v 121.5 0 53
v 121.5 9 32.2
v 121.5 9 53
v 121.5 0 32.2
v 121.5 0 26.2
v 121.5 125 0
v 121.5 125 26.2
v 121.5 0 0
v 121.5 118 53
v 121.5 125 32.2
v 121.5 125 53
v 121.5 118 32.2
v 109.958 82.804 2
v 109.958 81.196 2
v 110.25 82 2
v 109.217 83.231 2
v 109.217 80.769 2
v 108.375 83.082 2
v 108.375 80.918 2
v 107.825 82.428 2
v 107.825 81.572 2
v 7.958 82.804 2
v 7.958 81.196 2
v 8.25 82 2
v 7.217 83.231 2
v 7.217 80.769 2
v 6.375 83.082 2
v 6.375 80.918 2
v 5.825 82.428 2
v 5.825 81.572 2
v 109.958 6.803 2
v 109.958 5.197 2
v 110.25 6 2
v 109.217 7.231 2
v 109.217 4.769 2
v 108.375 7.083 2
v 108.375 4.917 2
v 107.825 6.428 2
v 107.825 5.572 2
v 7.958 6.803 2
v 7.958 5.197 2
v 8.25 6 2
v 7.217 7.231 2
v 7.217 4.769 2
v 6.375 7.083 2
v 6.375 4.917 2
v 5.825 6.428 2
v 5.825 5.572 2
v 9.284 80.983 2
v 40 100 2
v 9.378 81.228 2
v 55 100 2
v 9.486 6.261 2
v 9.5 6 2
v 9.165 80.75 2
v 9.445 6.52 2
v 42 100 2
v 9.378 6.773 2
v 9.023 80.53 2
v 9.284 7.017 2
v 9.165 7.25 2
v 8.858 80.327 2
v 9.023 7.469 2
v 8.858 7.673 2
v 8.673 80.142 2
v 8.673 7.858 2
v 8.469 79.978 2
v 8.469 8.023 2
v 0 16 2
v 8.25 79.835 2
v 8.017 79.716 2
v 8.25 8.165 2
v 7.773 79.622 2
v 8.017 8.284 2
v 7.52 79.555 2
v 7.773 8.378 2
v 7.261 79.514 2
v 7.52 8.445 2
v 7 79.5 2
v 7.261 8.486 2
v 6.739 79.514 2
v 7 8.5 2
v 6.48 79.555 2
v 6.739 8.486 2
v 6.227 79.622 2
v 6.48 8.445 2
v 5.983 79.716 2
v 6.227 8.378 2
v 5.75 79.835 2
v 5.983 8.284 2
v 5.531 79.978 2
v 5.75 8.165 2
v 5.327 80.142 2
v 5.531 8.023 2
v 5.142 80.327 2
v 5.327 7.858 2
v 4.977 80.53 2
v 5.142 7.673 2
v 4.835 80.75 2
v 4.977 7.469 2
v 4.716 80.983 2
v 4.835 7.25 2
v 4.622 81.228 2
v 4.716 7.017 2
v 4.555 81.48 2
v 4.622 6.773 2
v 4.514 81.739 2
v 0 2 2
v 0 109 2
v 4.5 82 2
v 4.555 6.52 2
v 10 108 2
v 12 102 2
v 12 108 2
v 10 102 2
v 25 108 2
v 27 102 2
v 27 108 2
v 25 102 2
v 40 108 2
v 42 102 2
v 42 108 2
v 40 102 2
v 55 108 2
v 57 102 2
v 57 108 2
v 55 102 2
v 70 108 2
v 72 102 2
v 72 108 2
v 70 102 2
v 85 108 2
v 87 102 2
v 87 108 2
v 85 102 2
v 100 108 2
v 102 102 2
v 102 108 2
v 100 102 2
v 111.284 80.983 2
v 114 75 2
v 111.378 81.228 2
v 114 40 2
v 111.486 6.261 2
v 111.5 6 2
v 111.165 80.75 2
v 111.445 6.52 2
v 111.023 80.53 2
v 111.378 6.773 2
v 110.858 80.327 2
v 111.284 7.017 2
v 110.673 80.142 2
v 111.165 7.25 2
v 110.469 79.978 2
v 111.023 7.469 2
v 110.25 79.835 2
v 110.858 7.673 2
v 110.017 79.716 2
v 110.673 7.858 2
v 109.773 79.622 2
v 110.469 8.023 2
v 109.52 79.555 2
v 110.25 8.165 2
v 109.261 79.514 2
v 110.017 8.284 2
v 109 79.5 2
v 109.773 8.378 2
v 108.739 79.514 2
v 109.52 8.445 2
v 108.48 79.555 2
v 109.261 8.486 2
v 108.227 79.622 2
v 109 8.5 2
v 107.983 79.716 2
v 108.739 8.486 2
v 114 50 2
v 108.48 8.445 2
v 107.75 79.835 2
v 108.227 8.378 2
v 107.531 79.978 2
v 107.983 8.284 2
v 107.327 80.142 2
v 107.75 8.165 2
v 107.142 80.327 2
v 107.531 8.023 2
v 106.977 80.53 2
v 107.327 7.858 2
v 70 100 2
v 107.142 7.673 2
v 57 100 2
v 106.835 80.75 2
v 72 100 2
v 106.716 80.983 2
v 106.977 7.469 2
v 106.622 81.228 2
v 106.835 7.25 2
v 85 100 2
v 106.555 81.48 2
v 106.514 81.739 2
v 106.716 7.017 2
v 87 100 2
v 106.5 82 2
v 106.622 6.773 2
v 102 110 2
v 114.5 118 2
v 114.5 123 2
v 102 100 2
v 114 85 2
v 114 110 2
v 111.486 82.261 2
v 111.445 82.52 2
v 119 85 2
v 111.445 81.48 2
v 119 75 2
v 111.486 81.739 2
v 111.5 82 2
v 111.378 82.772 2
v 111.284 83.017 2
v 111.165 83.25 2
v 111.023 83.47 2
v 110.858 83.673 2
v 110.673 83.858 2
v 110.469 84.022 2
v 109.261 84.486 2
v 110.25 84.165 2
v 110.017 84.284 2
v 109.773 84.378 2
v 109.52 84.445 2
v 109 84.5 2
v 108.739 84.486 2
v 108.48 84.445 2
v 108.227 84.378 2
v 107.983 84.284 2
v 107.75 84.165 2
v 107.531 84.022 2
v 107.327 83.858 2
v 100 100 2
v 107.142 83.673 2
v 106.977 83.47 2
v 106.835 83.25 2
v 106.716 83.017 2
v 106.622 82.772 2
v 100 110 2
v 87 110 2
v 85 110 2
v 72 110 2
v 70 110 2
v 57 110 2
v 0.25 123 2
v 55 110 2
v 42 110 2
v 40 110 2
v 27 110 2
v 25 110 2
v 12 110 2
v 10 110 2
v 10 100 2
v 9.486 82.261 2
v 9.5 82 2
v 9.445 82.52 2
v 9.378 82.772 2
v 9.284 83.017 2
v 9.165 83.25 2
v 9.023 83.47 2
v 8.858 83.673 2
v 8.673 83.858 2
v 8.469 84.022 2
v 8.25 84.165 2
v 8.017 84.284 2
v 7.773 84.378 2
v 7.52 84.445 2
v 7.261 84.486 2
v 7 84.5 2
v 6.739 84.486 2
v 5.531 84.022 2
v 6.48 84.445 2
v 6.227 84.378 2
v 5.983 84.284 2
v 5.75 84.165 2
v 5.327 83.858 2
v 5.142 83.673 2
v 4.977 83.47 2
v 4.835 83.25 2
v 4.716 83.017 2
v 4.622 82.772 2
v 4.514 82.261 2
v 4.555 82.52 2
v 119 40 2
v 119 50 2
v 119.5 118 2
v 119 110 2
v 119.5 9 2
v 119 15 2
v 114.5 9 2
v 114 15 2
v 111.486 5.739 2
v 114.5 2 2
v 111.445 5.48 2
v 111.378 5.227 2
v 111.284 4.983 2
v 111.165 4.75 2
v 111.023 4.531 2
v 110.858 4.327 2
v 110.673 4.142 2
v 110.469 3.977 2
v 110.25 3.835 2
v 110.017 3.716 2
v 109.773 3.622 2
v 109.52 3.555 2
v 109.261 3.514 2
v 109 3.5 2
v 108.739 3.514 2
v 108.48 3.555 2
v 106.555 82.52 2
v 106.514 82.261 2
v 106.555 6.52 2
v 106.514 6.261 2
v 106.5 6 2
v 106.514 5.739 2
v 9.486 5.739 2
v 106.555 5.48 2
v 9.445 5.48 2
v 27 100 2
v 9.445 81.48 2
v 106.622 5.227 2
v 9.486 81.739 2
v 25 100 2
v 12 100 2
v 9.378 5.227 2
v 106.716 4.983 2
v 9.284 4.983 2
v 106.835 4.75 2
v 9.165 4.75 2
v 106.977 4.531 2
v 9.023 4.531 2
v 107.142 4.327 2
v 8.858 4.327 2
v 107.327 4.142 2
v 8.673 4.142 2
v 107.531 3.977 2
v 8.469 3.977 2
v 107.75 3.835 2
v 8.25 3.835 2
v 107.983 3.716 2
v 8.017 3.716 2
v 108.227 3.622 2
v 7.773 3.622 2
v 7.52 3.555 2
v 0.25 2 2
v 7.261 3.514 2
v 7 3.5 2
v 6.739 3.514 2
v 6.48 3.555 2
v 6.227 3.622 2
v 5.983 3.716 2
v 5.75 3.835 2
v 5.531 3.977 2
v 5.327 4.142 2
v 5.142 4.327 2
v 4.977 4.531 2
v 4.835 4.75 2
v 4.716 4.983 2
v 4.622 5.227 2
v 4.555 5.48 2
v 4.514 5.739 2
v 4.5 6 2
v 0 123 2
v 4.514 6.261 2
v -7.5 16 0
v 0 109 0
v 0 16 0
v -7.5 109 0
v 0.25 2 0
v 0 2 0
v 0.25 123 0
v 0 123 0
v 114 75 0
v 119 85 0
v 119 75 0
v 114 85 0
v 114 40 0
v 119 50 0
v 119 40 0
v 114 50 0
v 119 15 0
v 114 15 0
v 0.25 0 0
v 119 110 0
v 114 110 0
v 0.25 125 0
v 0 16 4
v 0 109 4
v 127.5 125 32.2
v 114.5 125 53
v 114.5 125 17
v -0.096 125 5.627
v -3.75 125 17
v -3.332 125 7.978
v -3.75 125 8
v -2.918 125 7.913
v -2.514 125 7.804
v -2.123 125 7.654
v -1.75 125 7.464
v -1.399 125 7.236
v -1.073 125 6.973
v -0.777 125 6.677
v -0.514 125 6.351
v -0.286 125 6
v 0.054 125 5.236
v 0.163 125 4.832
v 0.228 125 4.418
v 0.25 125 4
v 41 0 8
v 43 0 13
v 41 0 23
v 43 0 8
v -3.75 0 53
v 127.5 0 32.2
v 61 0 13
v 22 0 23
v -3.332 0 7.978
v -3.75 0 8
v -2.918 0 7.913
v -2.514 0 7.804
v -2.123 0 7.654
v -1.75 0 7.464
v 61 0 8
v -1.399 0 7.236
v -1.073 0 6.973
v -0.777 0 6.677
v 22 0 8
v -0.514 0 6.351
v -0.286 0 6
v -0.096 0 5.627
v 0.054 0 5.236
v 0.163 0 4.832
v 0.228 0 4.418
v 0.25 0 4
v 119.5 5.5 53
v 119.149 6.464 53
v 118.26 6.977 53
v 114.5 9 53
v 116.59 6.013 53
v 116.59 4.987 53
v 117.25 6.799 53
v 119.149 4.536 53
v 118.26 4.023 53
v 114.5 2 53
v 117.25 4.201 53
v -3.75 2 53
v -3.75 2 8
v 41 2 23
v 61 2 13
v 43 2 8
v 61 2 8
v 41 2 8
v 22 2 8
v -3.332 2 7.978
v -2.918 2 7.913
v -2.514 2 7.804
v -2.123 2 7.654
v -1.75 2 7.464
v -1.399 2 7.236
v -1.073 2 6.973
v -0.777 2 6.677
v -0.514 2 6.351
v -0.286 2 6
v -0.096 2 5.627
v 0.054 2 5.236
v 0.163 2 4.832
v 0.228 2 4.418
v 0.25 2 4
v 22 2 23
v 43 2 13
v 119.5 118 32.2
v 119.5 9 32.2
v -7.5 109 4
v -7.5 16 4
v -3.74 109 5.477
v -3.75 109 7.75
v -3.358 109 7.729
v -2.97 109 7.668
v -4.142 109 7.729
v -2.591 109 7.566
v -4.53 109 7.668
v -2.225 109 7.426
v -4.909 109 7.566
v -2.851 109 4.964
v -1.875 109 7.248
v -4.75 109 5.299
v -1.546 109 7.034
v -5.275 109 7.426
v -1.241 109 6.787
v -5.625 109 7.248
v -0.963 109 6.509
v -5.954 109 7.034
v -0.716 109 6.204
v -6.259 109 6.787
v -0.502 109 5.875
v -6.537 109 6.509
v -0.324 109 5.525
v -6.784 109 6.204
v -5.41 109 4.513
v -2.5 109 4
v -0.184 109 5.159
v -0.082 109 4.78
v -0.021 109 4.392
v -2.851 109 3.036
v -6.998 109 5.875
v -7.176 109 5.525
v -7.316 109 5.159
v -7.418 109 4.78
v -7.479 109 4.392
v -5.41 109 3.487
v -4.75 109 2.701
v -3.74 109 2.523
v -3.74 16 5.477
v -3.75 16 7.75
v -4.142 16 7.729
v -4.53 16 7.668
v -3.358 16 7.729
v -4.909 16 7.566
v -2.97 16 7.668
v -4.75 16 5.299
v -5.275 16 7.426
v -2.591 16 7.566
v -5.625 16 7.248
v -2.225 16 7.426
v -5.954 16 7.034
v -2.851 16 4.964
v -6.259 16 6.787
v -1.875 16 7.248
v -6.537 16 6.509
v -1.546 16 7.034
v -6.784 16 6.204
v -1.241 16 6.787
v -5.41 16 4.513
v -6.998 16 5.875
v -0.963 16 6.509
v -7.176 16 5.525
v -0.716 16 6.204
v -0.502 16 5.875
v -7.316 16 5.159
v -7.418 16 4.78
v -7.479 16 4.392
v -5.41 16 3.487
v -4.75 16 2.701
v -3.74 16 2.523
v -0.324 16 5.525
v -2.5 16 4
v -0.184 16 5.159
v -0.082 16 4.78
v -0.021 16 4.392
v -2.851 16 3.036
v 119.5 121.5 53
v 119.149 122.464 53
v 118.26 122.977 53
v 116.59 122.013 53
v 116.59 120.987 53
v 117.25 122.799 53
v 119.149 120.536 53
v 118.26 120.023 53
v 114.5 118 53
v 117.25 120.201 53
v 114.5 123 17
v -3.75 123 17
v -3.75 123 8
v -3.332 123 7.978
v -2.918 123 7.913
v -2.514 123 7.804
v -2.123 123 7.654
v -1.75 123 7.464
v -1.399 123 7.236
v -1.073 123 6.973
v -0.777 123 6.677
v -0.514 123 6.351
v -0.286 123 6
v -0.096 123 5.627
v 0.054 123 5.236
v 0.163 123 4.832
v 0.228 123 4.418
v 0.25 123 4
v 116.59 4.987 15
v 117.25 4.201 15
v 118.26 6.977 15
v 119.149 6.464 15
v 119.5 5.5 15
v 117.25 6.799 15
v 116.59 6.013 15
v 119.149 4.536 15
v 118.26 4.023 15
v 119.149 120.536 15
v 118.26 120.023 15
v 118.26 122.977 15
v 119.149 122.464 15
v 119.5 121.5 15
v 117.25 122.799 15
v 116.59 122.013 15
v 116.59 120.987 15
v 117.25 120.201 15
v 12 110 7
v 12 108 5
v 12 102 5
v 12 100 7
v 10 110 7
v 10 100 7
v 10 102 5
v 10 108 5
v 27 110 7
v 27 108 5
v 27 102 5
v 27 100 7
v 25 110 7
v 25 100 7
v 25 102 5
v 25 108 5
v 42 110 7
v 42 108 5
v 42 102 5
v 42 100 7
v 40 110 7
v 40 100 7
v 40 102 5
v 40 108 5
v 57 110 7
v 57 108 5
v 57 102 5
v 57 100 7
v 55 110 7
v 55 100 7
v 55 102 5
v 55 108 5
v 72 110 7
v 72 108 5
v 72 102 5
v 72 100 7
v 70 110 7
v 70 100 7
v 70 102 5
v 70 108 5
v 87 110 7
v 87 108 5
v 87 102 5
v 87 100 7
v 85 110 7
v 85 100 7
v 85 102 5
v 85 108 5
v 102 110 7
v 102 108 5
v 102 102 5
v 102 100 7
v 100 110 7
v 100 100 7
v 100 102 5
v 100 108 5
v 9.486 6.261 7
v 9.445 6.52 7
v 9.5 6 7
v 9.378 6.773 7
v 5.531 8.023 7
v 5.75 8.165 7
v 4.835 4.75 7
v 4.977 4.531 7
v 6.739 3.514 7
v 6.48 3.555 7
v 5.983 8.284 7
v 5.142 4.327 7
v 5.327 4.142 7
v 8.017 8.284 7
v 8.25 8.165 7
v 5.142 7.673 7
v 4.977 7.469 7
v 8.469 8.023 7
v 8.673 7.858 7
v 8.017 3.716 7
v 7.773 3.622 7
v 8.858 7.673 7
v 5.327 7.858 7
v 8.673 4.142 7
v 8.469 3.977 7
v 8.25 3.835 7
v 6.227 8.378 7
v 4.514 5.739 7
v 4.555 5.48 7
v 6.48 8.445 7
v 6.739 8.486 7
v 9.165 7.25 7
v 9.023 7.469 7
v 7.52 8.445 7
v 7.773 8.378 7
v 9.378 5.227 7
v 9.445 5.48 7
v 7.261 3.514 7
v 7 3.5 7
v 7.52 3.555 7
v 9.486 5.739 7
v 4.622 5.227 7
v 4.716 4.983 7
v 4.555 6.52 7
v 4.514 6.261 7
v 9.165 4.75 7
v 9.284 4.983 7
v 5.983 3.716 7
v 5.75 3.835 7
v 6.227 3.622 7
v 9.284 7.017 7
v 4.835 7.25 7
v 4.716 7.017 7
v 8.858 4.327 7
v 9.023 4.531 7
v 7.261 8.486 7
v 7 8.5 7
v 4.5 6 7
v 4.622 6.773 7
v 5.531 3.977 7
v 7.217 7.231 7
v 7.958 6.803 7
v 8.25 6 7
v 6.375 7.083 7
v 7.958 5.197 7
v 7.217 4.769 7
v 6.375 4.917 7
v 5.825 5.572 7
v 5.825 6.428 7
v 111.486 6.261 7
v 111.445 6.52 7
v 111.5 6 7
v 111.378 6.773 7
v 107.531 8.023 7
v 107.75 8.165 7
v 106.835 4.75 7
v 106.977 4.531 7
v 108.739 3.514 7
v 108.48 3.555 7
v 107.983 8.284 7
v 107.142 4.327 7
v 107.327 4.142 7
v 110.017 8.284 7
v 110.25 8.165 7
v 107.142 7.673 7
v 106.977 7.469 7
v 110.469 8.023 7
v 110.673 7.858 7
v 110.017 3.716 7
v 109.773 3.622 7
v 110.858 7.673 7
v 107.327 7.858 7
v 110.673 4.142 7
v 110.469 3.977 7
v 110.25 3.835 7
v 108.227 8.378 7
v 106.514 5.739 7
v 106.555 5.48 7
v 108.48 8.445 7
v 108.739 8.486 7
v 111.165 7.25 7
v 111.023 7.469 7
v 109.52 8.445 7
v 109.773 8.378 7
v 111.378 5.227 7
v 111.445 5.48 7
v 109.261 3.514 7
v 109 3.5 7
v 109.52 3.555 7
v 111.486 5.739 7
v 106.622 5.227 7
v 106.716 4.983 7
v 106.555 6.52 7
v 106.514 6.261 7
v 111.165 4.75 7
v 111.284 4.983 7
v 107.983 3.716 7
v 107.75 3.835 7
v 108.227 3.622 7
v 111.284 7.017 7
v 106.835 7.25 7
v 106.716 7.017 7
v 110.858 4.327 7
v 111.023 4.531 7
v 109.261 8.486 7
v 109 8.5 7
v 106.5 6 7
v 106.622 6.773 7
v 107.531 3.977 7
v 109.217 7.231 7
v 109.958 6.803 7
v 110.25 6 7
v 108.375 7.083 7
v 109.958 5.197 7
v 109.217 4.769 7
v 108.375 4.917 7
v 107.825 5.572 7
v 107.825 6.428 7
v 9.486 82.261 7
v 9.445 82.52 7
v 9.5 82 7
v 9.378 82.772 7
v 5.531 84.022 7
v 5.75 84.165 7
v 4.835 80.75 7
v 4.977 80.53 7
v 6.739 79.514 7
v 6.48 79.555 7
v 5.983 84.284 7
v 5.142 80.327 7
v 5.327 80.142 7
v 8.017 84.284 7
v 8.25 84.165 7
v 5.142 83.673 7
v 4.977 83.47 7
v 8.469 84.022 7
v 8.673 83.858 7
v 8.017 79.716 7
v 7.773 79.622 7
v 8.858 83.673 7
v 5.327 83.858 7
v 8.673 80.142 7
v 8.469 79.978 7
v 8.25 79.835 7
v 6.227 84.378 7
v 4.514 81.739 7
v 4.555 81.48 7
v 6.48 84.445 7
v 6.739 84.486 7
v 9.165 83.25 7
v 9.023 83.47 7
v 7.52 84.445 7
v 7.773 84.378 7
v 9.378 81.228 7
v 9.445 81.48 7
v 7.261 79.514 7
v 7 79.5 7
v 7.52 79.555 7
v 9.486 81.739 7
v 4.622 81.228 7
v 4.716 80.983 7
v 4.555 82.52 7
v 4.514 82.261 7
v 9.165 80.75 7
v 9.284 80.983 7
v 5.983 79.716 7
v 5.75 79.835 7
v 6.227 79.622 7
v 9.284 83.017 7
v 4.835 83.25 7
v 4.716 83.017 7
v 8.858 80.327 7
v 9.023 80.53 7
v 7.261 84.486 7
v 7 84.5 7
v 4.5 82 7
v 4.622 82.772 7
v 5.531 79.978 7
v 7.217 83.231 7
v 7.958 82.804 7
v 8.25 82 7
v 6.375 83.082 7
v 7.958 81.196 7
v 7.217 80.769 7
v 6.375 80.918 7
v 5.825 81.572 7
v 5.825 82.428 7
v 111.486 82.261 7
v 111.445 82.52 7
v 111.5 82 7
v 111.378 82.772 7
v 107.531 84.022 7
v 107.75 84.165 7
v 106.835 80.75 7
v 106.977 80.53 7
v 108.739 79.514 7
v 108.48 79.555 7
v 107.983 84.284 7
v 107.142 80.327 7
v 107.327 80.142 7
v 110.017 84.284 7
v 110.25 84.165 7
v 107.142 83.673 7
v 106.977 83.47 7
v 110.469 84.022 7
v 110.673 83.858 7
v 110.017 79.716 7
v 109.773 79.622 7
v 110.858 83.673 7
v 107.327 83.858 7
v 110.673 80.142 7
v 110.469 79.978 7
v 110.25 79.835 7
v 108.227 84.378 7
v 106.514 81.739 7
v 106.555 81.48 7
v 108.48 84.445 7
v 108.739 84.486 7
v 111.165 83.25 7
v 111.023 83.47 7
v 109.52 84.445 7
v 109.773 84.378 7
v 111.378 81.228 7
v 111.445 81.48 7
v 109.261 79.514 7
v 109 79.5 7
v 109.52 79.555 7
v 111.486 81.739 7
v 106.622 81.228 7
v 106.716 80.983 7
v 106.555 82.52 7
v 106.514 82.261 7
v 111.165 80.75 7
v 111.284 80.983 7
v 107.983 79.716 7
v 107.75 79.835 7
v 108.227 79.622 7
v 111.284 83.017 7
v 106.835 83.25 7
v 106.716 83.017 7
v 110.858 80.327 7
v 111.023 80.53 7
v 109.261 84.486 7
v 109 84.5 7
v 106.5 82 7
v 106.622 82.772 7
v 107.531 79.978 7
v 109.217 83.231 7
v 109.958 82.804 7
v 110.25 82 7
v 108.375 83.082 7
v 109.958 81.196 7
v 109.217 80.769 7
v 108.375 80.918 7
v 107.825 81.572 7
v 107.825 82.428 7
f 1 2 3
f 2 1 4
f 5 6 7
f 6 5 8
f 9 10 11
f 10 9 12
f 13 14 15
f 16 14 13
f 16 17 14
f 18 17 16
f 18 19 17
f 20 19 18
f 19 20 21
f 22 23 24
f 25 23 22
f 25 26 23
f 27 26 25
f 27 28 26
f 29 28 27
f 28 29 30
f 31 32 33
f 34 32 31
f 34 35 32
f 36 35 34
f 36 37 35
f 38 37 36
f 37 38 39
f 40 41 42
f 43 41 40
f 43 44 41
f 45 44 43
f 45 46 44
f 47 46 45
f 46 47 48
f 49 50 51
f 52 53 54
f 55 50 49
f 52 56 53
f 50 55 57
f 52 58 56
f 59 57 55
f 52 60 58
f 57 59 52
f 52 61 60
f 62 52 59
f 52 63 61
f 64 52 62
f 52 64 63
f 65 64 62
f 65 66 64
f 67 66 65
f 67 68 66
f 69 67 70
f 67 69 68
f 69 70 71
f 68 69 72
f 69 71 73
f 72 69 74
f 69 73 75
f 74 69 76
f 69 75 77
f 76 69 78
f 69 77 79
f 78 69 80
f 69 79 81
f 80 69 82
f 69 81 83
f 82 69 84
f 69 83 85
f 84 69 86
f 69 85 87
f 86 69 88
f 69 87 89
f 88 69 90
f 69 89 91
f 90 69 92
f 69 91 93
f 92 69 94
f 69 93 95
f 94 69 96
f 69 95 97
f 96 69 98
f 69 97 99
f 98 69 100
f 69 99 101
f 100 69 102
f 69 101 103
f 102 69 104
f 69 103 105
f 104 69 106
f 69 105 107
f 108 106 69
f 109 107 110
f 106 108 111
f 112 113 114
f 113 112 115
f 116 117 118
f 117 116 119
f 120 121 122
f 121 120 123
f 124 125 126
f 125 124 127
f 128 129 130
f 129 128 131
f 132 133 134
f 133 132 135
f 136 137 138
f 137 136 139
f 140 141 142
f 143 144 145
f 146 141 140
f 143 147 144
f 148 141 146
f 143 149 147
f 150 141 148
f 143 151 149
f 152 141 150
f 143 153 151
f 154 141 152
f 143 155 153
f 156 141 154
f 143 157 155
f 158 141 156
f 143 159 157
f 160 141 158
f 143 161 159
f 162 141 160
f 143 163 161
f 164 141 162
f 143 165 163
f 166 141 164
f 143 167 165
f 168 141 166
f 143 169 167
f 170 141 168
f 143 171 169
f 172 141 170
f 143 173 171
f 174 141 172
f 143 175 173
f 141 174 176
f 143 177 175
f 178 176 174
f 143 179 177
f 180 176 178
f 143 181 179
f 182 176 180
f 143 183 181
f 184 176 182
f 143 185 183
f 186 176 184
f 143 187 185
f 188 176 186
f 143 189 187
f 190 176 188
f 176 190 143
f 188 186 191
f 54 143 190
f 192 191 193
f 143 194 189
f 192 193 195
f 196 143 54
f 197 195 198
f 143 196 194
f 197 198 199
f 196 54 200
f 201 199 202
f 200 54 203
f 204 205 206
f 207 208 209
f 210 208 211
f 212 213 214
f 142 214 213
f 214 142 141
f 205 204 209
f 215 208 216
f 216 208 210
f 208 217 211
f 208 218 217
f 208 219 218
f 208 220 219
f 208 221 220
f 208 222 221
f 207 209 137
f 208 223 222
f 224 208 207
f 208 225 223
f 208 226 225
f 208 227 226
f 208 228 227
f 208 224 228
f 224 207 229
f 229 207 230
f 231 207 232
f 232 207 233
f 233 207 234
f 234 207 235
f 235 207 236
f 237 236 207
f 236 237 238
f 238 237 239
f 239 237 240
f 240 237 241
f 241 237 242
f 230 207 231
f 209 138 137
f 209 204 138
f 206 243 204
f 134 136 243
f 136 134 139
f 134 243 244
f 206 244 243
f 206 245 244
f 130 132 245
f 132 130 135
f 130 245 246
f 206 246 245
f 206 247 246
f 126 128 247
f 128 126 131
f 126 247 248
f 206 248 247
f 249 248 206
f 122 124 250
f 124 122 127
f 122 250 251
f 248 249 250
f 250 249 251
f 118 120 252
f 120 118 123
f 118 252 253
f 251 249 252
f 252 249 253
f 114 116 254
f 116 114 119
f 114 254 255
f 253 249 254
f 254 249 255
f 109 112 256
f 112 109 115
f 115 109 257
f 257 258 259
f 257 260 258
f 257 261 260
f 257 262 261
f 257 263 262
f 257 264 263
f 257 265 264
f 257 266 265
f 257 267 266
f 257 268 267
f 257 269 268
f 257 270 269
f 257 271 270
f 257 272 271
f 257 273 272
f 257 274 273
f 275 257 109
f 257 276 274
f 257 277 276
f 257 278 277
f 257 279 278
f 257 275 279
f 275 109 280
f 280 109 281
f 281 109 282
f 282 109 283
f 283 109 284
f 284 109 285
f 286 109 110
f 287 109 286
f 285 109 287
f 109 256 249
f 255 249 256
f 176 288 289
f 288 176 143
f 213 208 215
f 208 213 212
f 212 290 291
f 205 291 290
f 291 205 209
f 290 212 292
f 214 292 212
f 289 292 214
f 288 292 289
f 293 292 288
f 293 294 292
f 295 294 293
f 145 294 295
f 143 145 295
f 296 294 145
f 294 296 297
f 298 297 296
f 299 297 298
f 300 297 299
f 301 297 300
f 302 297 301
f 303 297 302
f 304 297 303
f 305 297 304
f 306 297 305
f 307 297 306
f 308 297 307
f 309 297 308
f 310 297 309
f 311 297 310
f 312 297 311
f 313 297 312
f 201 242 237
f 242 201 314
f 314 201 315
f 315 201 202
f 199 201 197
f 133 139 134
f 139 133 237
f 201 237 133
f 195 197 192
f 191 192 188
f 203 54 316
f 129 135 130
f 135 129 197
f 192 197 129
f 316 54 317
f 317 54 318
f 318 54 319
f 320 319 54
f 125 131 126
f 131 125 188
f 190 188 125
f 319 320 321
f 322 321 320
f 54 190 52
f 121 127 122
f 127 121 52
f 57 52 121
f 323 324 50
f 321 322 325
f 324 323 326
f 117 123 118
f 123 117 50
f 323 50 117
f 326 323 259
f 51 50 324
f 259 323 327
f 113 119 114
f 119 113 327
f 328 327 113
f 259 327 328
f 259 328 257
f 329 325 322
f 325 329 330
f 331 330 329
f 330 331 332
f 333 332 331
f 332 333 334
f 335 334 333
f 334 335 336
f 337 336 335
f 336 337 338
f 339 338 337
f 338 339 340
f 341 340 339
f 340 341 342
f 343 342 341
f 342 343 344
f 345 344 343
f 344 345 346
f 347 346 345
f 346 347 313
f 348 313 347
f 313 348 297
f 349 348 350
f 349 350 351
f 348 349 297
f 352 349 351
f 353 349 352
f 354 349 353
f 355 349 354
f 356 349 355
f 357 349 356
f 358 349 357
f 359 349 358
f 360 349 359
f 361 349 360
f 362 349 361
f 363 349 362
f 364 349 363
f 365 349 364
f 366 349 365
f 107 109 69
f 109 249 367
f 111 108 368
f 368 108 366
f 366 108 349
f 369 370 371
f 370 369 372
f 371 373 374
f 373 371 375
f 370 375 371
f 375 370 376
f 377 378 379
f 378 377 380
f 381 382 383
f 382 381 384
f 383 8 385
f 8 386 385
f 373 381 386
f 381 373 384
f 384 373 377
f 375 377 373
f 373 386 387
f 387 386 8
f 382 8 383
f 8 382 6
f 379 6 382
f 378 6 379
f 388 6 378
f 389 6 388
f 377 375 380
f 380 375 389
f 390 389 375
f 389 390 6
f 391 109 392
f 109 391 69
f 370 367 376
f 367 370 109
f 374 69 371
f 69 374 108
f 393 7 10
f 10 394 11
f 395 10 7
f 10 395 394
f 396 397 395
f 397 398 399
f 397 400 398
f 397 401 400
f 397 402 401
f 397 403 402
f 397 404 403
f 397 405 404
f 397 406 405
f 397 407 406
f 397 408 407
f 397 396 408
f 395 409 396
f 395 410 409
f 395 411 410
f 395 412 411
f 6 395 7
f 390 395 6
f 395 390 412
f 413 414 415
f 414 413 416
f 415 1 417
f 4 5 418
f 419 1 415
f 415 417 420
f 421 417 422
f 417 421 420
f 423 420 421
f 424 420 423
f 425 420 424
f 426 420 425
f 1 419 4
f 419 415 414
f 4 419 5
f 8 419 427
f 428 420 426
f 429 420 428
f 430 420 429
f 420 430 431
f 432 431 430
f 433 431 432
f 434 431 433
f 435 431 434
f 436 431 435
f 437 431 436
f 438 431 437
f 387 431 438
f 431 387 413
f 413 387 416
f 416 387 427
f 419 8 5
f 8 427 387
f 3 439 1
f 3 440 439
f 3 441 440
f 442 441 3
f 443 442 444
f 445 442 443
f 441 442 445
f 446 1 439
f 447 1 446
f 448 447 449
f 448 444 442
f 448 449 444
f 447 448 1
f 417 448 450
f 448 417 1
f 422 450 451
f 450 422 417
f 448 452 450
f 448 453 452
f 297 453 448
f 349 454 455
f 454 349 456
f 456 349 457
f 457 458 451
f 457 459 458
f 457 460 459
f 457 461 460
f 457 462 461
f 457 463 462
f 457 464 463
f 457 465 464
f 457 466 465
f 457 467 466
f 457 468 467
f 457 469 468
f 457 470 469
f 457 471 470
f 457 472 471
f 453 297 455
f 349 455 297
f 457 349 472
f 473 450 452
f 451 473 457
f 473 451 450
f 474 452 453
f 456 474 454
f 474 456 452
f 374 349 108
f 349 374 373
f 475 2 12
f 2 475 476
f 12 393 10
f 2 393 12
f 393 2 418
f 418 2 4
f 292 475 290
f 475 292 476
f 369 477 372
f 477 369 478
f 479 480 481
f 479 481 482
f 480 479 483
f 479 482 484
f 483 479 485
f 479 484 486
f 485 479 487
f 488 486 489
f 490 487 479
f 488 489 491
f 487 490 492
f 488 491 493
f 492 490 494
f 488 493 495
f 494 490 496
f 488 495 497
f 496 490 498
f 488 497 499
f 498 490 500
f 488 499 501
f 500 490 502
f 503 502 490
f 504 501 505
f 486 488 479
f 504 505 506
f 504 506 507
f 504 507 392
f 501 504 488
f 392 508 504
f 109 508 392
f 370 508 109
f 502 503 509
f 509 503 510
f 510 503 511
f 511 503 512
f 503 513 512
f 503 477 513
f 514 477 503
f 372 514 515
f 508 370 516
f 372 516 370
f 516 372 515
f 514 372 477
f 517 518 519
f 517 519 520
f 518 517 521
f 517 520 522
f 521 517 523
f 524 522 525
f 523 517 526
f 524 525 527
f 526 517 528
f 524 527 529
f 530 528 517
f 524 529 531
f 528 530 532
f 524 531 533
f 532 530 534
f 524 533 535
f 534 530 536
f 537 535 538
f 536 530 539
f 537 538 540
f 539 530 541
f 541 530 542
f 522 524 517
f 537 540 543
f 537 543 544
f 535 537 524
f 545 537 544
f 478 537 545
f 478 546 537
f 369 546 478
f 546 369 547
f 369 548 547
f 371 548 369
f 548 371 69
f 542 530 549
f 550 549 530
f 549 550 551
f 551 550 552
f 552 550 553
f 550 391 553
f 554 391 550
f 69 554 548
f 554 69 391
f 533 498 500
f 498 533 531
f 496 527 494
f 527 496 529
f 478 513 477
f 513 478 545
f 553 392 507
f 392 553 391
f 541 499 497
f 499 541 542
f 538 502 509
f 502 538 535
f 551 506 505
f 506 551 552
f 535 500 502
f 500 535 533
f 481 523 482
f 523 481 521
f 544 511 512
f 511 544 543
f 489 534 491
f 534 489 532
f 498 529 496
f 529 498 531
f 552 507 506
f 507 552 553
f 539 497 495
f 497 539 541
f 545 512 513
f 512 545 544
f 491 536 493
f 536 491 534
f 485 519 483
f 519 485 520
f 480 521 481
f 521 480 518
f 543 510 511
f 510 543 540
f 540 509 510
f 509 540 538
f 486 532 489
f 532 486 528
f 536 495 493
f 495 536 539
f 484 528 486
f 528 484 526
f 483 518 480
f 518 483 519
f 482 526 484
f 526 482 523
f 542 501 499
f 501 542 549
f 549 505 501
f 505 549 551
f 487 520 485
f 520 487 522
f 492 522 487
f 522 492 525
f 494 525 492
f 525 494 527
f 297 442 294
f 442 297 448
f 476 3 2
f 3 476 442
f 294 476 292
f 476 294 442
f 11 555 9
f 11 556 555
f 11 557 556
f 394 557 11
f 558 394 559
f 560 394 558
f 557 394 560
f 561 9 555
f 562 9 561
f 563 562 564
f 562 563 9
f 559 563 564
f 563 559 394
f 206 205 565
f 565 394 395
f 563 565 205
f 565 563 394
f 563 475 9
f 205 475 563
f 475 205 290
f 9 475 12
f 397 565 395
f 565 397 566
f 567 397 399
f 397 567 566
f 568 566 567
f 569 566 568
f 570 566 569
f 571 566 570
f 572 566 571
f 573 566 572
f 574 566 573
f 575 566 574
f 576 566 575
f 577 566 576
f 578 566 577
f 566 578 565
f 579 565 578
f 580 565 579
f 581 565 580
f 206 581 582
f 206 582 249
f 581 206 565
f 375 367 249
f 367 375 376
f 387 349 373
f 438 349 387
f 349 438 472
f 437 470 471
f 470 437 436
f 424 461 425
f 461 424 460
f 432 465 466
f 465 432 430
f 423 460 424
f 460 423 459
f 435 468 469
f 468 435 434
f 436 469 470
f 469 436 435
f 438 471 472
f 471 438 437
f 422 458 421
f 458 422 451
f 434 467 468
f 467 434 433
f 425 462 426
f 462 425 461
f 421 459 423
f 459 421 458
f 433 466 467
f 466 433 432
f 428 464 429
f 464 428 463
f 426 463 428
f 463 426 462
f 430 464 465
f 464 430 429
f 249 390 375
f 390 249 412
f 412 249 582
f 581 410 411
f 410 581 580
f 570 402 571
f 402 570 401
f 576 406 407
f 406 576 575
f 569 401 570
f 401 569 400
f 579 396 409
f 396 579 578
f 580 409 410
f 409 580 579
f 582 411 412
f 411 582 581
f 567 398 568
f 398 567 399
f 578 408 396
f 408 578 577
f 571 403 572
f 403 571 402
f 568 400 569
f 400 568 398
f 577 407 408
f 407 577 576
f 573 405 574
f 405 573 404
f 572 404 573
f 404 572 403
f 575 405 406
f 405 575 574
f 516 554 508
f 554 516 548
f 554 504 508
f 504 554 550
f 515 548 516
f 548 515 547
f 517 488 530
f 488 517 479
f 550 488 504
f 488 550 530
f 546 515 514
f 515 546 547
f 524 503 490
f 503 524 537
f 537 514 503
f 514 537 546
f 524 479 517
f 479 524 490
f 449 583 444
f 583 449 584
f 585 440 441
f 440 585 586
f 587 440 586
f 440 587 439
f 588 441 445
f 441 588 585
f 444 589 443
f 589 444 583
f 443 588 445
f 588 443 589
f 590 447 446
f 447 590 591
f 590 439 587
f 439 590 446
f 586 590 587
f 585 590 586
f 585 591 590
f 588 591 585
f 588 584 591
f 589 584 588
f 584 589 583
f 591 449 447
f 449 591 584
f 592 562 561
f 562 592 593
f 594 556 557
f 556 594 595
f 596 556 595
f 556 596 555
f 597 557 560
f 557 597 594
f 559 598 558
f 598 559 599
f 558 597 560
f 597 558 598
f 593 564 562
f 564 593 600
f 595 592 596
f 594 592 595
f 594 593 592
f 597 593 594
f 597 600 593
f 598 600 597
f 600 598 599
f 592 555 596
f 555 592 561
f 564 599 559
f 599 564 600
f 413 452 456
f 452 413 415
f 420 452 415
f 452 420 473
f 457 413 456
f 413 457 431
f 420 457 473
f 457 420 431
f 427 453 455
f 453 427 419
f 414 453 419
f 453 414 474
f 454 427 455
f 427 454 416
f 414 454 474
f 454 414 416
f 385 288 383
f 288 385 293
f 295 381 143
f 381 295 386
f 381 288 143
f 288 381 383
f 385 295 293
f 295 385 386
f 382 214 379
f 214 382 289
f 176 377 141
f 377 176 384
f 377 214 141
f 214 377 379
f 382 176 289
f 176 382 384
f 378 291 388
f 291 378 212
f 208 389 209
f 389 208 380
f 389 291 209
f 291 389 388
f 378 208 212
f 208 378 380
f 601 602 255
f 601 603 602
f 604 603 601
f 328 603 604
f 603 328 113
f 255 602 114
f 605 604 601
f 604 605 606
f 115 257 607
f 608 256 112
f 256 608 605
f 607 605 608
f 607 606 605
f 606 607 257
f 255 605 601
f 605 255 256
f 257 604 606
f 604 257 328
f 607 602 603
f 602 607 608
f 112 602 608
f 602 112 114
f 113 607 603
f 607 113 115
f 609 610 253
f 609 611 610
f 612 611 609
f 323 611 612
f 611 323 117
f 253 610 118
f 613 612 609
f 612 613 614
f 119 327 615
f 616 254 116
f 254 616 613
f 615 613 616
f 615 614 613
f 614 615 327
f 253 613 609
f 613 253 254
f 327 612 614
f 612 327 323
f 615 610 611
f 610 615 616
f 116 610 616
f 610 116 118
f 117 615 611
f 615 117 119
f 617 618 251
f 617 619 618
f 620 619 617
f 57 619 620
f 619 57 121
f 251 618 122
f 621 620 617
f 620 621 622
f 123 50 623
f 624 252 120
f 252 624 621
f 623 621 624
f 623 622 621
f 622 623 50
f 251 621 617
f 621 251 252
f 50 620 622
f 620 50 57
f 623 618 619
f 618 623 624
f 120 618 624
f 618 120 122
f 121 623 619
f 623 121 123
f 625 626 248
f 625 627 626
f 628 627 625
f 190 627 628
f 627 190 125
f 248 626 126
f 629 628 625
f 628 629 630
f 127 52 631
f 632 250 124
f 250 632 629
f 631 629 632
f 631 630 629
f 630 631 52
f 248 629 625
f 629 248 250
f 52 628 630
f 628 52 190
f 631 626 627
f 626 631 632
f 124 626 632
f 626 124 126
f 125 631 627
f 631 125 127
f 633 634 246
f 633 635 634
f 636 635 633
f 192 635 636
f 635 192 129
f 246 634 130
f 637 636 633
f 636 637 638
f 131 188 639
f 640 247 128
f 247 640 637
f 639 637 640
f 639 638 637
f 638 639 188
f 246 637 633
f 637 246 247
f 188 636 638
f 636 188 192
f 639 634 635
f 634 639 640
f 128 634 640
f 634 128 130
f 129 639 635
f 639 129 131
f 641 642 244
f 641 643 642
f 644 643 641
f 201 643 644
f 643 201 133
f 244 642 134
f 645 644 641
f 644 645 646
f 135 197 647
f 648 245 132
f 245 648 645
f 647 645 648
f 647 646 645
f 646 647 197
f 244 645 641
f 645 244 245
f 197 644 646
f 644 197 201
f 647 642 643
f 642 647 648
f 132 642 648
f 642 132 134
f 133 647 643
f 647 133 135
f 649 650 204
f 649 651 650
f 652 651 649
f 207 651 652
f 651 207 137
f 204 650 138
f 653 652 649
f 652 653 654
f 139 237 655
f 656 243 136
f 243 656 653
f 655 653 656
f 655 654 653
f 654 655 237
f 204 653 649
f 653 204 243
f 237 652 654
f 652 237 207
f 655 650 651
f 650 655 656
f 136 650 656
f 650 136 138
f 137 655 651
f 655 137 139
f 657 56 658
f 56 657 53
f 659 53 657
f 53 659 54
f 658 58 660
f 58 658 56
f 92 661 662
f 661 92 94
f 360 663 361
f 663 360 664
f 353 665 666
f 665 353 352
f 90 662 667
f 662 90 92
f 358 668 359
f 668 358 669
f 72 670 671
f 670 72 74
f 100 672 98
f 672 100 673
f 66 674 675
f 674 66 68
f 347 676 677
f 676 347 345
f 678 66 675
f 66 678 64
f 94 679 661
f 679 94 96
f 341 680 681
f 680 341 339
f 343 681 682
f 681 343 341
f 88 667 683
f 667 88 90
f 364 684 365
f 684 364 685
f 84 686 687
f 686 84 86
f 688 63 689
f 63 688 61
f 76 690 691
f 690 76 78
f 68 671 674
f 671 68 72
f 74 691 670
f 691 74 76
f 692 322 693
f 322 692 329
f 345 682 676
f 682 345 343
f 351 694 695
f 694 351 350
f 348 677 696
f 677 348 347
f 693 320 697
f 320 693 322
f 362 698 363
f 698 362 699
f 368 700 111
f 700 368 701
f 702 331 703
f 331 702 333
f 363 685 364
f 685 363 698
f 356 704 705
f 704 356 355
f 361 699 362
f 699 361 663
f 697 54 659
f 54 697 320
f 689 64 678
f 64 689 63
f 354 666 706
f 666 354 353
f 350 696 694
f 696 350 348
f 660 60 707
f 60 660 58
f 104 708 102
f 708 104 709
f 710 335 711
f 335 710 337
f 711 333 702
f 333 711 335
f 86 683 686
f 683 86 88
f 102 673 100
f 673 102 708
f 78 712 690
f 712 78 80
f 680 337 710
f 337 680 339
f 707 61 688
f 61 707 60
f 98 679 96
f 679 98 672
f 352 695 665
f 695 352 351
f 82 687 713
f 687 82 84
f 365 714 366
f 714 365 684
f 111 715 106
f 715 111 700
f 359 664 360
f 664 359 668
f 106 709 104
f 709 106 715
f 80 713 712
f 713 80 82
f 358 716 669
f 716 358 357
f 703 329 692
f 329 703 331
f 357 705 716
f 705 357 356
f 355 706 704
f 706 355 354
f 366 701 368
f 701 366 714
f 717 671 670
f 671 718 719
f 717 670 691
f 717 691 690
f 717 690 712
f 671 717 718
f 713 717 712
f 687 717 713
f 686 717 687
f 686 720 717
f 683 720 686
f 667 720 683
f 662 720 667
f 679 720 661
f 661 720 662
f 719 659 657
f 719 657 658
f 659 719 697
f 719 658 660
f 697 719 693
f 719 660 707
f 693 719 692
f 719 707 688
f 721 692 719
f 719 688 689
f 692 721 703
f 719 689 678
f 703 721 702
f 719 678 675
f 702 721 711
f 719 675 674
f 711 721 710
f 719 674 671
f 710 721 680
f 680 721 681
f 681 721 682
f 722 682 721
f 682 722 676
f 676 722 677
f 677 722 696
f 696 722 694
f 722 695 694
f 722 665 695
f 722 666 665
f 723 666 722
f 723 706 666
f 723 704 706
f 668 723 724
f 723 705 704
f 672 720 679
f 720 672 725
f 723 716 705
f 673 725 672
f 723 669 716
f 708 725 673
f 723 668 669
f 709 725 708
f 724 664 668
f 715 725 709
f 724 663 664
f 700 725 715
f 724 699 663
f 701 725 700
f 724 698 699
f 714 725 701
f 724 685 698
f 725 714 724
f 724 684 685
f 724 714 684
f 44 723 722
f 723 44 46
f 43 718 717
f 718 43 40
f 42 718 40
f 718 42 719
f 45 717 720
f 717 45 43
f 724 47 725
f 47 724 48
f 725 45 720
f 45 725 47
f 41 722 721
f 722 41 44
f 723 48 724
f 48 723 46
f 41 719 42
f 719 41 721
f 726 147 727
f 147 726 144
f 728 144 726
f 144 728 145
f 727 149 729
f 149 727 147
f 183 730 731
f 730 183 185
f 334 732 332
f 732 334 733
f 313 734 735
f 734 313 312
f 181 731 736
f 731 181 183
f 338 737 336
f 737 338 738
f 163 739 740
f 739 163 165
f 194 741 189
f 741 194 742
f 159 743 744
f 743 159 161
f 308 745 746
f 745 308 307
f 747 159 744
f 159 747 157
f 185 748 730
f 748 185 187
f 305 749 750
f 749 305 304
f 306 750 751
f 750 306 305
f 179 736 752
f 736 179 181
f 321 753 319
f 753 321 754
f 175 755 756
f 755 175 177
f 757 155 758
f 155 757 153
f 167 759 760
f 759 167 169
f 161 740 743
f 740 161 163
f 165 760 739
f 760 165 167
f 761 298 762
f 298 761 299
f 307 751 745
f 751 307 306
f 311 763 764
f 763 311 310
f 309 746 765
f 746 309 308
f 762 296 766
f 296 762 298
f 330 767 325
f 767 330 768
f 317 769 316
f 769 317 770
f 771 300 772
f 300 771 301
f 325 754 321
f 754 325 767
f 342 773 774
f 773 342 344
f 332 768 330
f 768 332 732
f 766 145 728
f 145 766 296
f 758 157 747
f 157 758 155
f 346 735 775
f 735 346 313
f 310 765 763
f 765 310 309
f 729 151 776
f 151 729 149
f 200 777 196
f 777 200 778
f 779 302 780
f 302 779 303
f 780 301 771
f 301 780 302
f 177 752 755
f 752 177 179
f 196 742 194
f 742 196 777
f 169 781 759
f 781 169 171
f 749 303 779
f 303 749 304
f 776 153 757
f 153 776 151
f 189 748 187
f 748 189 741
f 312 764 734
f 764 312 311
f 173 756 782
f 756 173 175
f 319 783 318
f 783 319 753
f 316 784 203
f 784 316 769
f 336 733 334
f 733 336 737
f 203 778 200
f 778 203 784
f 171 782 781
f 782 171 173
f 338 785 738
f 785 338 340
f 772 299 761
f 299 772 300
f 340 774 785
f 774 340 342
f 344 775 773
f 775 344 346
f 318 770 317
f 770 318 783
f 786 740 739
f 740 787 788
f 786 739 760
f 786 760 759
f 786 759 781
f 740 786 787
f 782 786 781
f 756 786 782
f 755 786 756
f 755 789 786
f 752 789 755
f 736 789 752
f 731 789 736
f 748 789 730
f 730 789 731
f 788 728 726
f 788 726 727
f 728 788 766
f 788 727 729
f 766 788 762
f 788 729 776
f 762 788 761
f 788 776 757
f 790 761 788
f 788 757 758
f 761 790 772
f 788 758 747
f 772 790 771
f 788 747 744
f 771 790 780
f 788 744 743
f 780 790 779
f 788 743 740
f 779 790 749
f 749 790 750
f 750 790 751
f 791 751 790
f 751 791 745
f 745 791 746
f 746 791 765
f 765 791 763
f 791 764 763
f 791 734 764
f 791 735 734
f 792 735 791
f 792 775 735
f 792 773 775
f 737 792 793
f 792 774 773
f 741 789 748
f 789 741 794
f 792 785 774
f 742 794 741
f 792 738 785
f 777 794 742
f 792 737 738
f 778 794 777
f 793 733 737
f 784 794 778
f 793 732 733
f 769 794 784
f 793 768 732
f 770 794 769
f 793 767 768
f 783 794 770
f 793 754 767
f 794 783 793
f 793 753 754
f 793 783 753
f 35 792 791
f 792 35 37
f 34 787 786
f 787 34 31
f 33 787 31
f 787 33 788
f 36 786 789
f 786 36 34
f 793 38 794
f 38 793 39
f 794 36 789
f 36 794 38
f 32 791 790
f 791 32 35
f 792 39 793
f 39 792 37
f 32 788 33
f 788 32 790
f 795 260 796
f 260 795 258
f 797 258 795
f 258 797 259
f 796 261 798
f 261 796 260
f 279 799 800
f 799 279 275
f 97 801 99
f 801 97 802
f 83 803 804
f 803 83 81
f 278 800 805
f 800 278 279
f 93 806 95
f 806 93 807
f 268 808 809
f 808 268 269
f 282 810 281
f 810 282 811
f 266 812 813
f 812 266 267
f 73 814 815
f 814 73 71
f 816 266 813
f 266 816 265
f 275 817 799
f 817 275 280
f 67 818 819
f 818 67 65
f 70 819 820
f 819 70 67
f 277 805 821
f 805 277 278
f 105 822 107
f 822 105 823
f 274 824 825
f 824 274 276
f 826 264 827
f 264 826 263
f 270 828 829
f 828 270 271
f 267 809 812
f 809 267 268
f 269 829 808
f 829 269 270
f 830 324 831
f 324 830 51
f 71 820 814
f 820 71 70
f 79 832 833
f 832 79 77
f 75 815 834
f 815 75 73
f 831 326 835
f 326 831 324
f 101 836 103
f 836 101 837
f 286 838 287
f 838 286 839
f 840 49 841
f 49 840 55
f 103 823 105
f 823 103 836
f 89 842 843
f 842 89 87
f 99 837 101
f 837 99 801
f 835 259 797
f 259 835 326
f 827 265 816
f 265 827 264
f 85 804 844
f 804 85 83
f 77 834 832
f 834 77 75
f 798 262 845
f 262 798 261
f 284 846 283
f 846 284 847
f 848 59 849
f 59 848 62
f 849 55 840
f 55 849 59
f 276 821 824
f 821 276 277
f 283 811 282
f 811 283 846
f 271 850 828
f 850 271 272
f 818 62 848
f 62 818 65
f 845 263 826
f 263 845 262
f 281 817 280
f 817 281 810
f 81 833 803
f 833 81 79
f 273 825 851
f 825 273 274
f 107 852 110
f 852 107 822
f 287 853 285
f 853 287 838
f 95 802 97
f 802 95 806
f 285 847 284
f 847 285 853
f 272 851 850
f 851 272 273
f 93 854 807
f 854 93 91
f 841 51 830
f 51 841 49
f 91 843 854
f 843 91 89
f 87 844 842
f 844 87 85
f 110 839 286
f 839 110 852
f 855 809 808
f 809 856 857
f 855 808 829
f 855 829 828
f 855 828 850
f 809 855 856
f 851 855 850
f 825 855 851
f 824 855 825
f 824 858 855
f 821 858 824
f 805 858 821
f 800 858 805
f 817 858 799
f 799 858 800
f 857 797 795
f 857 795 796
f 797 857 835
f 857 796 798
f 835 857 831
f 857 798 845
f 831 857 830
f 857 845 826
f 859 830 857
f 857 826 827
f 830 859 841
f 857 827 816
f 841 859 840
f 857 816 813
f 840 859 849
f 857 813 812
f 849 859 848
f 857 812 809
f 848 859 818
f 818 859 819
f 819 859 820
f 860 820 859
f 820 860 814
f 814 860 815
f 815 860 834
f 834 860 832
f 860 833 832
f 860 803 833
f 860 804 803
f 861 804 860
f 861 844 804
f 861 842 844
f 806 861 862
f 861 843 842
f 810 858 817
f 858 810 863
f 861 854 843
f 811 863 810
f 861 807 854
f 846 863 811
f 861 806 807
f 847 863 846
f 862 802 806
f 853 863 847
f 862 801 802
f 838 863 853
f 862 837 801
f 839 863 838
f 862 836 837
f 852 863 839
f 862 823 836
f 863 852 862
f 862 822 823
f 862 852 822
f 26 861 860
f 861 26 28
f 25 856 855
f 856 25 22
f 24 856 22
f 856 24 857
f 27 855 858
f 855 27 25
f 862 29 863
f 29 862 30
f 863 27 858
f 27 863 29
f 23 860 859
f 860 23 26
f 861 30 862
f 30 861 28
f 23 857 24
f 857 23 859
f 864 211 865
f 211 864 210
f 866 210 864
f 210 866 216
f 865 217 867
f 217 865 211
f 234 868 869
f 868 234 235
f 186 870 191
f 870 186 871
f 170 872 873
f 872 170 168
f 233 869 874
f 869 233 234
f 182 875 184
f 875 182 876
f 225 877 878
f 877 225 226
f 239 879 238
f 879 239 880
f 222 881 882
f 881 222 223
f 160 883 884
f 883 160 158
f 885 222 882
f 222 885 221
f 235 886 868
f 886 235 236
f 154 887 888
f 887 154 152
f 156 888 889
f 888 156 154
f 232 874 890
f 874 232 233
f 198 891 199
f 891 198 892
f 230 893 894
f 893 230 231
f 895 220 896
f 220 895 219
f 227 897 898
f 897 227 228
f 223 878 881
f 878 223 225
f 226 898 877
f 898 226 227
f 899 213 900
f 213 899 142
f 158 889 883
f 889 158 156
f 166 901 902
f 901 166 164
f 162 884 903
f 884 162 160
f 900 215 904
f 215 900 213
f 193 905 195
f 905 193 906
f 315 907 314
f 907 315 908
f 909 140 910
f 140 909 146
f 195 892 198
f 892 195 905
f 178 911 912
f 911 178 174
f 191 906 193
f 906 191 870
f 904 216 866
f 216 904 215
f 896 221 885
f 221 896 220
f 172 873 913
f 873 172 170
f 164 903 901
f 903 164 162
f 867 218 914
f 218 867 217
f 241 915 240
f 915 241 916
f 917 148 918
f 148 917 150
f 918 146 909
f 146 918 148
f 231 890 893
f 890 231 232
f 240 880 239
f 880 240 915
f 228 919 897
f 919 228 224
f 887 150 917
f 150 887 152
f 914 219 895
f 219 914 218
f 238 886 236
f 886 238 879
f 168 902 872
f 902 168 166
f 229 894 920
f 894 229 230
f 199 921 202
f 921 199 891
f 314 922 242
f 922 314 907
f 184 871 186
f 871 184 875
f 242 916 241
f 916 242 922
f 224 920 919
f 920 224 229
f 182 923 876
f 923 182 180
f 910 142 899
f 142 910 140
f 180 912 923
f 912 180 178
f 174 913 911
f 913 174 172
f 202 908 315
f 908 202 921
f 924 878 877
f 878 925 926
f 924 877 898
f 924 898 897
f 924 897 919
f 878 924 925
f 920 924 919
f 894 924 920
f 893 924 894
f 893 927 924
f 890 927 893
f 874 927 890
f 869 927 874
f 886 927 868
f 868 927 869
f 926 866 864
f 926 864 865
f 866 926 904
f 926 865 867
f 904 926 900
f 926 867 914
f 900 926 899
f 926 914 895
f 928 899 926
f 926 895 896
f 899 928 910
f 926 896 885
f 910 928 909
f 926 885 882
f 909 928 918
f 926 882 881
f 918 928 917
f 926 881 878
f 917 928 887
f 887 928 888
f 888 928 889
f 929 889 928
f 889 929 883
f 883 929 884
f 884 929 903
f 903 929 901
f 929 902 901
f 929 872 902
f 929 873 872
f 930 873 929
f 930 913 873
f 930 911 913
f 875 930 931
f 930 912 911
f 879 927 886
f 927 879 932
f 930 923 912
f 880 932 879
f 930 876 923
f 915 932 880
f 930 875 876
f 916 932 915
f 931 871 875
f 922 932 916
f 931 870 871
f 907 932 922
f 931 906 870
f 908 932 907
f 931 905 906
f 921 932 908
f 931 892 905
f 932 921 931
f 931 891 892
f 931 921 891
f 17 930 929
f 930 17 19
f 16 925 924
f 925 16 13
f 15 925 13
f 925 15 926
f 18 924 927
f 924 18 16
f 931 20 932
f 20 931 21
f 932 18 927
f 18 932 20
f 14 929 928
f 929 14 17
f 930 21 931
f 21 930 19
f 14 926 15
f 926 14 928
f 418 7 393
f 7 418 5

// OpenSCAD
/*
BSD 2-Clause License

Copyright (c) 2020, Ewald Stangl
All rights reserved.

Redistribution and use in source and binary forms, with or without
modification, are permitted provided that the following conditions are met:

1. Redistributions of source code must retain the above copyright notice, this
   list of conditions and the following disclaimer.

2. Redistributions in binary form must reproduce the above copyright notice,
   this list of conditions and the following disclaimer in the documentation
   and/or other materials provided with the distribution.

THIS SOFTWARE IS PROVIDED BY THE COPYRIGHT HOLDERS AND CONTRIBUTORS "AS IS"
AND ANY EXPRESS OR IMPLIED WARRANTIES, INCLUDING, BUT NOT LIMITED TO, THE
IMPLIED WARRANTIES OF MERCHANTABILITY AND FITNESS FOR A PARTICULAR PURPOSE ARE
DISCLAIMED. IN NO EVENT SHALL THE COPYRIGHT HOLDER OR CONTRIBUTORS BE LIABLE
FOR ANY DIRECT, INDIRECT, INCIDENTAL, SPECIAL, EXEMPLARY, OR CONSEQUENTIAL
DAMAGES (INCLUDING, BUT NOT LIMITED TO, PROCUREMENT OF SUBSTITUTE GOODS OR
SERVICES; LOSS OF USE, DATA, OR PROFITS; OR BUSINESS INTERRUPTION) HOWEVER
CAUSED AND ON ANY THEORY OF LIABILITY, WHETHER IN CONTRACT, STRICT LIABILITY,
OR TORT (INCLUDING NEGLIGENCE OR OTHERWISE) ARISING IN ANY WAY OUT OF THE USE
OF THIS SOFTWARE, EVEN IF ADVISED OF THE POSSIBILITY OF SUCH DAMAGE.
*/

difference() {
    translate([0, 0, 0]) {
        // bottom
        cube([121.5, 125, 2]);
        
        // front wall
        translate([-3.75, 0, 0]) {
            cube([125.25, 2, 53]);
        }
        
        // right wall
        translate([119.5, 0, 2]) {
            cube([2, 125, 30.2]);
        }

        // center connector
        translate([-7.5, 16, 0]) {
            cube([7.5, 93, 4]);
        }
        
        translate([-3.75, 16, 4]) {
            rotate([270]) {
                cylinder(d = 7.5, h = 93, $fn = 60);
            }
        }
        
        // lid stands
        translate([114.5, 2, 0]) {
            cube([7, 7, 53]);
        }
        translate([114.5, 118, 0]) {
            cube([7, 7, 53]);
        }
        
        // back wall
        translate([-3.75, 123, 2]) {
            cube([125, 2, 15]);
        }
    }

    // center connector cut-out front
    translate([0, 0, 0]) {
        translate([-7.25, -1, -1]) {
            cube([7.5, 3, 5]);
        }
        
        translate([-3.75, -1, 4]) {
            rotate([270]) {
                cylinder(d = 8, h = 5, $fn = 60);
            }
        }
    }
    
    // center connector cut-out rear
    translate([0, 0, 0]) {
        translate([-7.25, 123, -1]) {
            cube([7.5, 4, 5]);
        }
        
        translate([-3.75, 122, 4]) {
            rotate([270]) {
                cylinder(d = 8, h = 10, $fn = 60);
            }
        }
    }
    
    // center connector
    translate([-4, 0, 4]) {
        rotate([270]) {
            cylinder(d = 3, h = 150, $fn = 9);
        }
    }
    
    // lid holes
    translate([118, 5.5, 15]) {
        cylinder(d = 3, h = 50, $fn = 9);
    }
    translate([118, 121.5, 15]) {
        cylinder(d = 3, h = 50, $fn = 9);
    }
    
    
    // skr 1.4 backplane
    translate([22, -1, 8]) {
        cube([19, 4, 15]);
    }
    translate([43, -1, 8]) {
        cube([18, 4, 5]);
    }
    
    // air inlet
    translate([114, 15, -1]) {
        cube([5, 25, 5]);
    }
    translate([114, 50, -1]) {
        cube([5, 25, 5]);
    }
    translate([114, 85, -1]) {
        cube([5, 25, 5]);
    }
}

// cable straps
translate([10, 100, 2]) {
    for(i = [0: 15 : 90]) {
        cablestrap([i, 0, 0]);
    }
}


// outer hang-in
translate([121.5, 0, 32.2]) {
    rotate([90, 180, 180]) {
        linear_extrude(125) {
            polygon(points=[[0, 0],[6, 0],[0, 6]]);
        }
    }
}




// skr 1.4
translate([7, 6, 2]) {
    screwhole([0, 0, 0], 2.5, 5);
    screwhole([102, 0, 0], 2.5, 5);
    screwhole([0, 76, 0], 2.5, 5);
    screwhole([102, 76, 0], 2.5, 5);
}


module screwhole(position, diameter, height, outerDiameter) {
    dia1 = outerDiameter ? outerDiameter : diameter * 2;
    
    translate(position) {
        difference() {
            cylinder(h = height, d = dia1, center = false, $fn = 60);
            cylinder(h = height * 1.25, d = diameter, center = false, $fn = 9);
        }
    }
}

module cablestrap(position) {
    translate(position) {
        difference() {
            cube([2, 10, 5]);
            translate([-1, 2, 0]) {
                cube([5, 6, 3]);
            }
        }
    }
}
